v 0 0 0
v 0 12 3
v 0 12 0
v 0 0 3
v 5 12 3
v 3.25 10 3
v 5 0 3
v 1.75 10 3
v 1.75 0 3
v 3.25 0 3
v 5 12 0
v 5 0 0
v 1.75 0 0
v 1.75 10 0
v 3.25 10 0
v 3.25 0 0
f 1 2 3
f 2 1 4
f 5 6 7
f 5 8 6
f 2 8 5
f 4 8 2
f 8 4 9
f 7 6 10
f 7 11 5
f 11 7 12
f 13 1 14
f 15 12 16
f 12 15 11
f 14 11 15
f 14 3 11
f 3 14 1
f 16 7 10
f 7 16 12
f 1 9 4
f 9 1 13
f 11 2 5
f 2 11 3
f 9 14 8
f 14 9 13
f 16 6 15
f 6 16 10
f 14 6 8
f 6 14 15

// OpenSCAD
fudge = 0.01;
clip_width = 5;
clip_height = 3;
clip_length = 12;

slot_width = 1.5;
slot_length = 10;

// Derived values, do not edit
pf = fudge;
dpf = 2 * pf;
nf = -pf;


difference() {
    cube([clip_width, clip_length, clip_height]);
    translate([(clip_width - slot_width)/2, nf, nf]) cube([slot_width, slot_length + pf, clip_height + dpf]);
}
